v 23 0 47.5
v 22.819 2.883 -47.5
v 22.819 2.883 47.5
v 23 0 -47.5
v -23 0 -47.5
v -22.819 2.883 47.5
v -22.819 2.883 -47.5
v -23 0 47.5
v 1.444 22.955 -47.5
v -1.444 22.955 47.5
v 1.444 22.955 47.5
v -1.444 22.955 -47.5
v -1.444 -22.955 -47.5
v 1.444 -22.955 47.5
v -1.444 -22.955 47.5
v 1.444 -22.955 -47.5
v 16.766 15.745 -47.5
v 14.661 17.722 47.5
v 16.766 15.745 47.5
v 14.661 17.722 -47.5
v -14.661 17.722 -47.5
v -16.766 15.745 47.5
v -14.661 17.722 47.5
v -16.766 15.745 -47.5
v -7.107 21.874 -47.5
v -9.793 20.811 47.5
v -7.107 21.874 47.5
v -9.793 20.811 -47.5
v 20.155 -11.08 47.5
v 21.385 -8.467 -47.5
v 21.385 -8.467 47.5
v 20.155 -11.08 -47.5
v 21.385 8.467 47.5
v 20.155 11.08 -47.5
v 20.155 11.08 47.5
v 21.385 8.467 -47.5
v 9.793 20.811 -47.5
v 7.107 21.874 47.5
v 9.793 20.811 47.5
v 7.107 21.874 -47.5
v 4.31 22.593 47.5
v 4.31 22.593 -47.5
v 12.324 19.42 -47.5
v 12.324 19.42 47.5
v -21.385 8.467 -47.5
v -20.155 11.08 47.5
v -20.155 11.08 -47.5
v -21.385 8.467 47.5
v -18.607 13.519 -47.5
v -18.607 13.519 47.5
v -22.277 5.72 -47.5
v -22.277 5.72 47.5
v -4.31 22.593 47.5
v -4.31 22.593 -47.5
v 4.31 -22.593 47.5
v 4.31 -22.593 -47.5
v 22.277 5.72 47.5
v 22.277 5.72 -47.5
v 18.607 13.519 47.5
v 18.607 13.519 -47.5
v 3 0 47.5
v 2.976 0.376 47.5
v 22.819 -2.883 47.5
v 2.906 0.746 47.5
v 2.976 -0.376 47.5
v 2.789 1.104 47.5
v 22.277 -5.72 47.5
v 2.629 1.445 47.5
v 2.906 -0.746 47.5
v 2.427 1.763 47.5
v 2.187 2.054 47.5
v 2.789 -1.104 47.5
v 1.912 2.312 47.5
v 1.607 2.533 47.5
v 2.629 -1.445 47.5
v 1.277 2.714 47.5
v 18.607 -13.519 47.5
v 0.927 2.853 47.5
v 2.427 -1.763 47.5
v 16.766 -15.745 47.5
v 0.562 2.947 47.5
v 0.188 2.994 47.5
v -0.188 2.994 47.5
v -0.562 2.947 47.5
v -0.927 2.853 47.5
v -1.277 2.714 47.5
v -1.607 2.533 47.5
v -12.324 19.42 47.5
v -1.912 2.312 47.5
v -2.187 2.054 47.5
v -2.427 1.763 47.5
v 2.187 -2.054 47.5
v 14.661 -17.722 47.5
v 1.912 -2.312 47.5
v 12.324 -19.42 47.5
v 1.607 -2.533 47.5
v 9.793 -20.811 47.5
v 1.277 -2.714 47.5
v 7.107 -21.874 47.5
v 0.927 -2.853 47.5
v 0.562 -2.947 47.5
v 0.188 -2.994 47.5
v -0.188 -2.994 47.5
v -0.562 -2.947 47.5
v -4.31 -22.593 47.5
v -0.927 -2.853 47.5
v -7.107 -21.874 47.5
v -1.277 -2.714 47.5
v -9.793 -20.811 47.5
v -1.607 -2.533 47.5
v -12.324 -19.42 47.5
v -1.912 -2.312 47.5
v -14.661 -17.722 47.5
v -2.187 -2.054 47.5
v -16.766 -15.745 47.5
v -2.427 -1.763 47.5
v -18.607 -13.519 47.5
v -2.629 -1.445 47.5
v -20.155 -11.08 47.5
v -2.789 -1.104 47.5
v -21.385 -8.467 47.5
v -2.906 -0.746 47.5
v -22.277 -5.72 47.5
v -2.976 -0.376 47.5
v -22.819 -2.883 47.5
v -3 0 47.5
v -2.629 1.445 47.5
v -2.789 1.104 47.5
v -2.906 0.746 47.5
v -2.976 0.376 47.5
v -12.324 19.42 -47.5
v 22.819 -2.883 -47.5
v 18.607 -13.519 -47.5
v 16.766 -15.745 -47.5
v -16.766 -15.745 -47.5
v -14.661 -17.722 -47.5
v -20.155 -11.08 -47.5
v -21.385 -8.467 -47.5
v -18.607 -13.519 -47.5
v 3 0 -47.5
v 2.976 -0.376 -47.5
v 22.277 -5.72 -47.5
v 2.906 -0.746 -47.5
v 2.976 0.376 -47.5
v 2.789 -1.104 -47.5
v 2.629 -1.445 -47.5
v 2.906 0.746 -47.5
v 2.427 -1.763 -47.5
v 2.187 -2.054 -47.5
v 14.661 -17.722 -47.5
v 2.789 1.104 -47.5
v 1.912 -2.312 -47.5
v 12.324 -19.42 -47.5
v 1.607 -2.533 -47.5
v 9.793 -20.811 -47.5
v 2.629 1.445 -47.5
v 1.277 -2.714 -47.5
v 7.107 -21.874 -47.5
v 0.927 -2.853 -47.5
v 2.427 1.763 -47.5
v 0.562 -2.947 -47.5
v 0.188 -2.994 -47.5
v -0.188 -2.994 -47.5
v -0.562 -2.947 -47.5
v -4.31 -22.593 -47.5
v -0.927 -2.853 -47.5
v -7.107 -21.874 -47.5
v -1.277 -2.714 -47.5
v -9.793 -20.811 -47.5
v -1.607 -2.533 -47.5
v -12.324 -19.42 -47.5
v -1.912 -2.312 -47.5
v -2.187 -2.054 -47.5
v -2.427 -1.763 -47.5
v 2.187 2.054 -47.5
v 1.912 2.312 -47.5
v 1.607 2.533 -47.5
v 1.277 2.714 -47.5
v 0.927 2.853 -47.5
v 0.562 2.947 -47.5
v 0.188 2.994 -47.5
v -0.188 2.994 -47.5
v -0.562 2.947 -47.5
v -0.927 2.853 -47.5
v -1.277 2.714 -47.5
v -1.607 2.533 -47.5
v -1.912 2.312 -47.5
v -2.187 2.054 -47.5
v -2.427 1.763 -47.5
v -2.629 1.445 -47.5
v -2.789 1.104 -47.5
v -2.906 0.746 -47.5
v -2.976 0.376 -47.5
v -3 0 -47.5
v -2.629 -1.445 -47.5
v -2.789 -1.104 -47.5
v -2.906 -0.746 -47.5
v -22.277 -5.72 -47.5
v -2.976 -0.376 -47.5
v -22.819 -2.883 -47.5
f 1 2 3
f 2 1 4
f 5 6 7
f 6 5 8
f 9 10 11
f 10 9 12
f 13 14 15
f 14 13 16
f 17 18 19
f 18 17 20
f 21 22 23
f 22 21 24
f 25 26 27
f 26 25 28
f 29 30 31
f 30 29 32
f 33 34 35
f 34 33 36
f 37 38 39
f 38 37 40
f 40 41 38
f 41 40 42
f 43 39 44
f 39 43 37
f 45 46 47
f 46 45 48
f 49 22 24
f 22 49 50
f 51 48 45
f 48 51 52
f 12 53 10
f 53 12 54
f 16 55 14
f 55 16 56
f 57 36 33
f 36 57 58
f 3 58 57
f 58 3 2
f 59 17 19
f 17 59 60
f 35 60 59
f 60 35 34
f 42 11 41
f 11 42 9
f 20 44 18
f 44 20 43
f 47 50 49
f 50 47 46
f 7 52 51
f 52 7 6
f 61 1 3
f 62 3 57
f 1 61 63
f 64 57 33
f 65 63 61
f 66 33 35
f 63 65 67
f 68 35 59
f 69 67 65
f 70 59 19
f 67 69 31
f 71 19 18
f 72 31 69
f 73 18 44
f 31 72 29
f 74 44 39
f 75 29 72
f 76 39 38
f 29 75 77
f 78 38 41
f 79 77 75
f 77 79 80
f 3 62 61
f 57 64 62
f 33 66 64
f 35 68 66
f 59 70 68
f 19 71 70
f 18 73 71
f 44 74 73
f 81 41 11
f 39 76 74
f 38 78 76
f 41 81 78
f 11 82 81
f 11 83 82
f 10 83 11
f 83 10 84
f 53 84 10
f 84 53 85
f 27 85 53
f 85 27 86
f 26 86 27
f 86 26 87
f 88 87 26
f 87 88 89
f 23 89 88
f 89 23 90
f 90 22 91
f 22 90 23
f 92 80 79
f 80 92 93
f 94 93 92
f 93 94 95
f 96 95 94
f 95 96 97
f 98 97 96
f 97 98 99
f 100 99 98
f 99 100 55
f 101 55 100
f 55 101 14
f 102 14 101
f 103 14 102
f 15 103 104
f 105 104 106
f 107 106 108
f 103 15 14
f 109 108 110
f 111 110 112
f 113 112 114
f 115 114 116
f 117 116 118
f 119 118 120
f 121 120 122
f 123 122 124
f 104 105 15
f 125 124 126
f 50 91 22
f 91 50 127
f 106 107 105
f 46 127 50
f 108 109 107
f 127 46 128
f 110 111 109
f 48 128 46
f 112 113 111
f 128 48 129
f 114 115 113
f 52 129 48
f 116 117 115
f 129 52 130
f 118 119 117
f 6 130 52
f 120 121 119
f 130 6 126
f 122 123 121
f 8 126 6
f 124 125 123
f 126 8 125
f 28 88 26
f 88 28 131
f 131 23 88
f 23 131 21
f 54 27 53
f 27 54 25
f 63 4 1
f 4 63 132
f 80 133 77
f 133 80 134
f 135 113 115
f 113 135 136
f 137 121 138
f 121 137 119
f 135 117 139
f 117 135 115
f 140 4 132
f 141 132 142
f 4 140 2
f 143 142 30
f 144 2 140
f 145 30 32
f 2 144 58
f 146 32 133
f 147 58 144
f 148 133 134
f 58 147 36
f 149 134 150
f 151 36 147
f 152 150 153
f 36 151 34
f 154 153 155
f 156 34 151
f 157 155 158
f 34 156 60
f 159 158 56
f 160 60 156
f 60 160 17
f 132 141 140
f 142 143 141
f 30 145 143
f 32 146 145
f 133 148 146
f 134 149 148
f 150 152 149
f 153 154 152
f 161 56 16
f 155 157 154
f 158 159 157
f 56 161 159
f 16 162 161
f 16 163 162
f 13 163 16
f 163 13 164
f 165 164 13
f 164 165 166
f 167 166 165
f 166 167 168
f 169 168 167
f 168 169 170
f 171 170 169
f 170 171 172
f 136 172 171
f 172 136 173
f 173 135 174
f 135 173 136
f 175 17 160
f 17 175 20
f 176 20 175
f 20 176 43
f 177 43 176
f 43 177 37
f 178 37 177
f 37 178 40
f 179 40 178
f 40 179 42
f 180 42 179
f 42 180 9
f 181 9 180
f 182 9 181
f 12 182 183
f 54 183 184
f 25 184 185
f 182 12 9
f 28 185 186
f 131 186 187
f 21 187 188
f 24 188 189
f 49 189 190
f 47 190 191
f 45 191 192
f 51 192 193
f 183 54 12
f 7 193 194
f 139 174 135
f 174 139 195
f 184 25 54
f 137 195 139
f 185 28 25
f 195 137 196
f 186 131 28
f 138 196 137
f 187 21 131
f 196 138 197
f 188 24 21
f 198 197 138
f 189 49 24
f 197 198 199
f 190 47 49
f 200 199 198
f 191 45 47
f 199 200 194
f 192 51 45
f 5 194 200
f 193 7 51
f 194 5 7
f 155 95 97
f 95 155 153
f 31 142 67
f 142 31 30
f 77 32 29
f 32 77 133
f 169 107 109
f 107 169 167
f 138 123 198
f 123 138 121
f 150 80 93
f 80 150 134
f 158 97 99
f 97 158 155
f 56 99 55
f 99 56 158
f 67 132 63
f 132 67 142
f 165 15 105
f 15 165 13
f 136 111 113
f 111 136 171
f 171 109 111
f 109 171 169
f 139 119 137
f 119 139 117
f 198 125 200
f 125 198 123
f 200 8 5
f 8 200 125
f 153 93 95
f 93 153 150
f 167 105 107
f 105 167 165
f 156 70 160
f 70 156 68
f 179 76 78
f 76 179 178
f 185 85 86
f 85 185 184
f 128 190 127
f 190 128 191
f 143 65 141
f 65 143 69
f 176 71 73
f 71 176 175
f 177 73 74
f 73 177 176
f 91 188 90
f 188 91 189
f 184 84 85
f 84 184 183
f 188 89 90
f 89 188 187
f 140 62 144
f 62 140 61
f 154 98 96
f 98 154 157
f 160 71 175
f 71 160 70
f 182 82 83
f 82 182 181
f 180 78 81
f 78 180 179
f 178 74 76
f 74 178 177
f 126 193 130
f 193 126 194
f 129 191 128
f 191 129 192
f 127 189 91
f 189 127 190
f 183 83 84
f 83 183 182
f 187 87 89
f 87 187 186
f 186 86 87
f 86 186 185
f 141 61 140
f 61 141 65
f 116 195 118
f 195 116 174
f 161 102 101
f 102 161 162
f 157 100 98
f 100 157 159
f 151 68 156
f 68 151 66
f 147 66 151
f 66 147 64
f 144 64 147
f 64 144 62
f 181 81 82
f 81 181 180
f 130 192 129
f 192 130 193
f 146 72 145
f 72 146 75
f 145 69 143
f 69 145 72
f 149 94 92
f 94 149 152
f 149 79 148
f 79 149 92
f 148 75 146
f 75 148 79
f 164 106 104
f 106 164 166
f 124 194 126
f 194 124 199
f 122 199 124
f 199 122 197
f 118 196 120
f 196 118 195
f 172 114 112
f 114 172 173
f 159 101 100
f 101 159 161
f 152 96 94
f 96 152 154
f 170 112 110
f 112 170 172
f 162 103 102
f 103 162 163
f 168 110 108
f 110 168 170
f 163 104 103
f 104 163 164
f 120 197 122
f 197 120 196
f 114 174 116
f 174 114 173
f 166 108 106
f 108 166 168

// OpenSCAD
$fn = 50;


difference() {
	union() {
		translate(v = [0, 0, -47.5000000000]) {
			cylinder(h = 95, r = 23.0000000000);
		}
	}
	union() {
		translate(v = [0, 0, -100.0000000000]) {
			cylinder(h = 200, r = 3.0000000000);
		}
	}
}
